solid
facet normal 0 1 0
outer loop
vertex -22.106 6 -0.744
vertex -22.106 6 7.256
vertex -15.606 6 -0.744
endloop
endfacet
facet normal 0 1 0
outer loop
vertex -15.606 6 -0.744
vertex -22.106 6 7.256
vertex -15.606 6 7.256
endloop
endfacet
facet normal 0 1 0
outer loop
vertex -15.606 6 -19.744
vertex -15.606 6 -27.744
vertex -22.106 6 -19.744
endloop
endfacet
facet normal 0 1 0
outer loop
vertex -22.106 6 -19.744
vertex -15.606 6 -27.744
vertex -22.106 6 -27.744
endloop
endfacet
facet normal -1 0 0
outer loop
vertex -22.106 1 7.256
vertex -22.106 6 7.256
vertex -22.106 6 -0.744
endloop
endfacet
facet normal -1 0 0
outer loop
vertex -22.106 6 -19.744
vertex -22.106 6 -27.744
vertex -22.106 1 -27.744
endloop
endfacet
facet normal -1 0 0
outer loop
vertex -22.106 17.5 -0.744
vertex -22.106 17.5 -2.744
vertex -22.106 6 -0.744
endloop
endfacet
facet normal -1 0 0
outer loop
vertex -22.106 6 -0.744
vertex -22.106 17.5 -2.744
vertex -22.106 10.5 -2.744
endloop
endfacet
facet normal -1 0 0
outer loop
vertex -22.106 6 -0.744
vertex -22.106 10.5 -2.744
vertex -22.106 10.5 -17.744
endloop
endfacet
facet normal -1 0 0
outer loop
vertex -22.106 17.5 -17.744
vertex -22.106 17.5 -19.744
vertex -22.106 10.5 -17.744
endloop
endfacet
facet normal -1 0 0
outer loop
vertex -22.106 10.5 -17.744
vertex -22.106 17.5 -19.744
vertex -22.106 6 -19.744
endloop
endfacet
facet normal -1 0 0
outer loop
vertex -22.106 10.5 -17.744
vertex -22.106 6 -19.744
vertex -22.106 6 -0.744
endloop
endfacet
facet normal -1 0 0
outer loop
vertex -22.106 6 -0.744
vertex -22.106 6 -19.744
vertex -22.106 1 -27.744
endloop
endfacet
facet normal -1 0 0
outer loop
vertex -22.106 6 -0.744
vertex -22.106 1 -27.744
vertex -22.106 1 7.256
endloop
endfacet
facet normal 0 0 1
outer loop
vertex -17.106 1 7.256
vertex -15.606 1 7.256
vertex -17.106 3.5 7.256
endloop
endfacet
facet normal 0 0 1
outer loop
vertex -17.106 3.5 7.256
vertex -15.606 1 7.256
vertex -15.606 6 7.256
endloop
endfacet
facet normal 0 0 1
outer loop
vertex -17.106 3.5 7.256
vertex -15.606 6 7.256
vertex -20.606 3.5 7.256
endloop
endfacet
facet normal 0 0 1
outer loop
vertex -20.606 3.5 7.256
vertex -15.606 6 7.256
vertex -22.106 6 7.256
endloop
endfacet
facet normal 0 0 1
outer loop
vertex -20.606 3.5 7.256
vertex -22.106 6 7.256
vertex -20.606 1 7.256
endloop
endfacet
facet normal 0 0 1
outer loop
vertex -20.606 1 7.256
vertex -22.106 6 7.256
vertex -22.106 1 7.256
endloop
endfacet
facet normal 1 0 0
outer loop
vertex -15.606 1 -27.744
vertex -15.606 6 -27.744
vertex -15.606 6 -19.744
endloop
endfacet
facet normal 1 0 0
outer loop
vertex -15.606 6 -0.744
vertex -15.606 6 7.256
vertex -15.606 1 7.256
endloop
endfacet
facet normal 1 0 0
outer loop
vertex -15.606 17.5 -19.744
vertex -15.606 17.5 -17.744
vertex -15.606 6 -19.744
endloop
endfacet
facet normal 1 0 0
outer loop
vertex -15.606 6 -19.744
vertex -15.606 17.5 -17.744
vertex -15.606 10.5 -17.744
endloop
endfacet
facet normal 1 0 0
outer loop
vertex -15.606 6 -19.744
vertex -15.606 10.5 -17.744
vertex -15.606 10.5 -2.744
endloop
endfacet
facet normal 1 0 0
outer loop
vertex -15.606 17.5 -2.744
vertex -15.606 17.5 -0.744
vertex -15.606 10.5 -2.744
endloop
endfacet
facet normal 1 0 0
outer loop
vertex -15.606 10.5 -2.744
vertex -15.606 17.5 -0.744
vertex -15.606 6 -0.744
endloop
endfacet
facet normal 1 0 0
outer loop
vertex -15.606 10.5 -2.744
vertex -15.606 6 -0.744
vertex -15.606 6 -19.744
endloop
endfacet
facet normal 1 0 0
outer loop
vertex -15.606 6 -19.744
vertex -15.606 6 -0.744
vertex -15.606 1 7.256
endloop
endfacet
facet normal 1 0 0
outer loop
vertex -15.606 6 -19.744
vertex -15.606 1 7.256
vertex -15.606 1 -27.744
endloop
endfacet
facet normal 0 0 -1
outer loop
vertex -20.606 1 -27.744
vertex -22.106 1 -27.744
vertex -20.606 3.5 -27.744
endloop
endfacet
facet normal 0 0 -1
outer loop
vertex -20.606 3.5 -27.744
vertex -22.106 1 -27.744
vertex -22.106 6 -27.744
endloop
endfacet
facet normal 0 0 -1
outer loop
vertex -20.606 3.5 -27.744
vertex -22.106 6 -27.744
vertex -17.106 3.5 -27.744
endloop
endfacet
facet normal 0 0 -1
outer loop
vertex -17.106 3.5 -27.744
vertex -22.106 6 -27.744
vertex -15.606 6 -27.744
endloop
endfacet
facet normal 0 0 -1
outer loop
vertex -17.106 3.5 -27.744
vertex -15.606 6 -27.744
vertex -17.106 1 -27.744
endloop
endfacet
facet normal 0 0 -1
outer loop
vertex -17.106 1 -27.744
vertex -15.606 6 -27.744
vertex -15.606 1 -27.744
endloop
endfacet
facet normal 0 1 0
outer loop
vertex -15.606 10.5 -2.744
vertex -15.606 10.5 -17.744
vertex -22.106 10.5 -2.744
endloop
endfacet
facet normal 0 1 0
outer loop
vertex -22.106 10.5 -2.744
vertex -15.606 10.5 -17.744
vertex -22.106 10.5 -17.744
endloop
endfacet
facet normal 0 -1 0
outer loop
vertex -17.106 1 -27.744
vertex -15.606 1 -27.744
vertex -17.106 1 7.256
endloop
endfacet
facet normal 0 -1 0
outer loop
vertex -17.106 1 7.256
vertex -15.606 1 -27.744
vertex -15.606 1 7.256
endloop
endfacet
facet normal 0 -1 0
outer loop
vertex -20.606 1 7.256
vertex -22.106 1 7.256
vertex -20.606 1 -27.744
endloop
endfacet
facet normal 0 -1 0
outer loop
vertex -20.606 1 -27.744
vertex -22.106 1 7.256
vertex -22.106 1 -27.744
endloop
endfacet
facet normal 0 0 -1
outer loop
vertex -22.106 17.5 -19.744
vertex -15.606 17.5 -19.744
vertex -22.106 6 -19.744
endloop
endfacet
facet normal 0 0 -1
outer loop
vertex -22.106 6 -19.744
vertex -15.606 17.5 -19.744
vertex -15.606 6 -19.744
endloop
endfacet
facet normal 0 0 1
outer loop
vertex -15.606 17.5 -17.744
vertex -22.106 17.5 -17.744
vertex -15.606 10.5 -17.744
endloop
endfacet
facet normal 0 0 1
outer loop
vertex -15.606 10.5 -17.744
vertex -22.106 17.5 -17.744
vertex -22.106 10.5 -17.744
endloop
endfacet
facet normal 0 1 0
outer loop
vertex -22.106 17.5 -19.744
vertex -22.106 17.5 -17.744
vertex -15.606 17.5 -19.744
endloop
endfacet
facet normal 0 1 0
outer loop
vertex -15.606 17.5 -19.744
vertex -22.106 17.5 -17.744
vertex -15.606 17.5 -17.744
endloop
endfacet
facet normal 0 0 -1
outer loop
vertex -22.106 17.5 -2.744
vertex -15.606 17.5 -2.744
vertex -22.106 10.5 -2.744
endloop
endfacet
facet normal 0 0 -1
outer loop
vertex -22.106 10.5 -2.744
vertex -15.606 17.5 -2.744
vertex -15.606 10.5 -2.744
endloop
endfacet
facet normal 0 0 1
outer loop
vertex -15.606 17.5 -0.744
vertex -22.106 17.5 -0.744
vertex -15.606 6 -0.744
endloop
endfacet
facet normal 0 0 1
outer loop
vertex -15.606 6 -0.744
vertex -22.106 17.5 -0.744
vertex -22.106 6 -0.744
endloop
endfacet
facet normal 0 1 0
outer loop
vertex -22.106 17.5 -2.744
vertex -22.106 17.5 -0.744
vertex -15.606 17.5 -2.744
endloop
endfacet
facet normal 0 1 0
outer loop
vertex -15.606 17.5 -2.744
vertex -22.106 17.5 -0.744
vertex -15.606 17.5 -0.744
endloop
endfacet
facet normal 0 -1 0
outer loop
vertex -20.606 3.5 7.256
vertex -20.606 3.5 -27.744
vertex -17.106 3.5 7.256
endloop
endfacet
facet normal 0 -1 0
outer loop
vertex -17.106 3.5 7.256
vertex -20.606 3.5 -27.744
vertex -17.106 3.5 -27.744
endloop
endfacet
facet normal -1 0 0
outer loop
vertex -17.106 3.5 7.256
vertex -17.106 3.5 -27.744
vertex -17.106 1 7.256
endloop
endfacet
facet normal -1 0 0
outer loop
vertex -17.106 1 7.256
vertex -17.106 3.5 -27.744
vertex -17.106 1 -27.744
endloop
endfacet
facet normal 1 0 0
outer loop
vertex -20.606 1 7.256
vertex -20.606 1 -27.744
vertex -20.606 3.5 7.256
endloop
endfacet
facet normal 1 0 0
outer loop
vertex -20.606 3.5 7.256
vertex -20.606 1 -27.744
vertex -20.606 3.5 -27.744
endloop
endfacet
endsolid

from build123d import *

# Parameters (mm, degrees)
SKETCH_1_W          = 6.5
SKETCH_1_H          = 35
EXTRUDE_1_DEPTH     = 6
SKETCH_2_W          = 2.5
SKETCH_2_H          = 2.967804408
CUT_EXTRUDE_1_DEPTH = 61
SKETCH_3_W          = 6.5
SKETCH_3_H          = 15
EXTRUDE_2_DEPTH     = 4.5
SKETCH_4_W          = 6.5
SKETCH_4_H          = 1
CUT_EXTRUDE_2_DEPTH = 503.5
SKETCH_5_W          = 6.5
SKETCH_5_H          = 2
EXTRUDE_3_DEPTH     = 11.5
SKETCH_6_W          = 6.5
SKETCH_6_H          = 2
EXTRUDE_4_DEPTH     = 11.5
SKETCH_7_W          = 3.5
SKETCH_7_H          = 2.5
CUT_EXTRUDE_3_DEPTH = 90.5


with BuildPart() as part:
    # Эскиз1 → Бобышка-Вытянуть1 (new body)
    with BuildSketch(Plane(origin=(0, 0, 0), x_dir=(1, 0, 0), z_dir=(0, 1, 0))):
        with Locations((-18.856267111, 10.244186047)):
            Rectangle(SKETCH_1_W, SKETCH_1_H)
    extrude(amount=EXTRUDE_1_DEPTH)

    # Эскиз2 → Вырез-Вытянуть1 (cut)
    with BuildSketch(Plane.XY.offset(7.255813953)):
        with Locations((-18.856267111, 1.483902204)):
            Rectangle(SKETCH_2_W, SKETCH_2_H)
    extrude(amount=-CUT_EXTRUDE_1_DEPTH, mode=Mode.SUBTRACT)

    # Эскиз3 → Бобышка-Вытянуть2 (add)
    with BuildSketch(Plane(origin=(0, 6, 0), x_dir=(1, 0, 0), z_dir=(0, 1, 0))):
        with Locations((-18.856267111, 10.244186047)):
            Rectangle(SKETCH_3_W, SKETCH_3_H)
    extrude(amount=EXTRUDE_2_DEPTH)

    # Эскиз4 → Вырез-Вытянуть2 (cut)
    with BuildSketch(Plane.XY.offset(7.255813953)):
        with Locations((-18.856267111, 0.5)):
            Rectangle(SKETCH_4_W, SKETCH_4_H)
    extrude(amount=-CUT_EXTRUDE_2_DEPTH, mode=Mode.SUBTRACT)

    # Эскиз5 → Бобышка-Вытянуть3 (add)
    with BuildSketch(Plane(origin=(0, 6, 0), x_dir=(1, 0, 0), z_dir=(0, 1, 0))):
        with Locations((-18.856267111, 18.744186047)):
            Rectangle(SKETCH_5_W, SKETCH_5_H)
    extrude(amount=EXTRUDE_3_DEPTH)

    # Эскиз6 → Бобышка-Вытянуть4 (add)
    with BuildSketch(Plane(origin=(0, 6, 0), x_dir=(1, 0, 0), z_dir=(0, 1, 0))):
        with Locations((-18.856267111, 1.744186047)):
            Rectangle(SKETCH_6_W, SKETCH_6_H)
    extrude(amount=EXTRUDE_4_DEPTH)

    # Эскиз7 → Вырез-Вытянуть3 (cut)
    with BuildSketch(Plane.XY.offset(7.255813953)):
        with Locations((-18.856267111, 2.25)):
            Rectangle(SKETCH_7_W, SKETCH_7_H)
    extrude(amount=-CUT_EXTRUDE_3_DEPTH, mode=Mode.SUBTRACT)


solid = part.part
